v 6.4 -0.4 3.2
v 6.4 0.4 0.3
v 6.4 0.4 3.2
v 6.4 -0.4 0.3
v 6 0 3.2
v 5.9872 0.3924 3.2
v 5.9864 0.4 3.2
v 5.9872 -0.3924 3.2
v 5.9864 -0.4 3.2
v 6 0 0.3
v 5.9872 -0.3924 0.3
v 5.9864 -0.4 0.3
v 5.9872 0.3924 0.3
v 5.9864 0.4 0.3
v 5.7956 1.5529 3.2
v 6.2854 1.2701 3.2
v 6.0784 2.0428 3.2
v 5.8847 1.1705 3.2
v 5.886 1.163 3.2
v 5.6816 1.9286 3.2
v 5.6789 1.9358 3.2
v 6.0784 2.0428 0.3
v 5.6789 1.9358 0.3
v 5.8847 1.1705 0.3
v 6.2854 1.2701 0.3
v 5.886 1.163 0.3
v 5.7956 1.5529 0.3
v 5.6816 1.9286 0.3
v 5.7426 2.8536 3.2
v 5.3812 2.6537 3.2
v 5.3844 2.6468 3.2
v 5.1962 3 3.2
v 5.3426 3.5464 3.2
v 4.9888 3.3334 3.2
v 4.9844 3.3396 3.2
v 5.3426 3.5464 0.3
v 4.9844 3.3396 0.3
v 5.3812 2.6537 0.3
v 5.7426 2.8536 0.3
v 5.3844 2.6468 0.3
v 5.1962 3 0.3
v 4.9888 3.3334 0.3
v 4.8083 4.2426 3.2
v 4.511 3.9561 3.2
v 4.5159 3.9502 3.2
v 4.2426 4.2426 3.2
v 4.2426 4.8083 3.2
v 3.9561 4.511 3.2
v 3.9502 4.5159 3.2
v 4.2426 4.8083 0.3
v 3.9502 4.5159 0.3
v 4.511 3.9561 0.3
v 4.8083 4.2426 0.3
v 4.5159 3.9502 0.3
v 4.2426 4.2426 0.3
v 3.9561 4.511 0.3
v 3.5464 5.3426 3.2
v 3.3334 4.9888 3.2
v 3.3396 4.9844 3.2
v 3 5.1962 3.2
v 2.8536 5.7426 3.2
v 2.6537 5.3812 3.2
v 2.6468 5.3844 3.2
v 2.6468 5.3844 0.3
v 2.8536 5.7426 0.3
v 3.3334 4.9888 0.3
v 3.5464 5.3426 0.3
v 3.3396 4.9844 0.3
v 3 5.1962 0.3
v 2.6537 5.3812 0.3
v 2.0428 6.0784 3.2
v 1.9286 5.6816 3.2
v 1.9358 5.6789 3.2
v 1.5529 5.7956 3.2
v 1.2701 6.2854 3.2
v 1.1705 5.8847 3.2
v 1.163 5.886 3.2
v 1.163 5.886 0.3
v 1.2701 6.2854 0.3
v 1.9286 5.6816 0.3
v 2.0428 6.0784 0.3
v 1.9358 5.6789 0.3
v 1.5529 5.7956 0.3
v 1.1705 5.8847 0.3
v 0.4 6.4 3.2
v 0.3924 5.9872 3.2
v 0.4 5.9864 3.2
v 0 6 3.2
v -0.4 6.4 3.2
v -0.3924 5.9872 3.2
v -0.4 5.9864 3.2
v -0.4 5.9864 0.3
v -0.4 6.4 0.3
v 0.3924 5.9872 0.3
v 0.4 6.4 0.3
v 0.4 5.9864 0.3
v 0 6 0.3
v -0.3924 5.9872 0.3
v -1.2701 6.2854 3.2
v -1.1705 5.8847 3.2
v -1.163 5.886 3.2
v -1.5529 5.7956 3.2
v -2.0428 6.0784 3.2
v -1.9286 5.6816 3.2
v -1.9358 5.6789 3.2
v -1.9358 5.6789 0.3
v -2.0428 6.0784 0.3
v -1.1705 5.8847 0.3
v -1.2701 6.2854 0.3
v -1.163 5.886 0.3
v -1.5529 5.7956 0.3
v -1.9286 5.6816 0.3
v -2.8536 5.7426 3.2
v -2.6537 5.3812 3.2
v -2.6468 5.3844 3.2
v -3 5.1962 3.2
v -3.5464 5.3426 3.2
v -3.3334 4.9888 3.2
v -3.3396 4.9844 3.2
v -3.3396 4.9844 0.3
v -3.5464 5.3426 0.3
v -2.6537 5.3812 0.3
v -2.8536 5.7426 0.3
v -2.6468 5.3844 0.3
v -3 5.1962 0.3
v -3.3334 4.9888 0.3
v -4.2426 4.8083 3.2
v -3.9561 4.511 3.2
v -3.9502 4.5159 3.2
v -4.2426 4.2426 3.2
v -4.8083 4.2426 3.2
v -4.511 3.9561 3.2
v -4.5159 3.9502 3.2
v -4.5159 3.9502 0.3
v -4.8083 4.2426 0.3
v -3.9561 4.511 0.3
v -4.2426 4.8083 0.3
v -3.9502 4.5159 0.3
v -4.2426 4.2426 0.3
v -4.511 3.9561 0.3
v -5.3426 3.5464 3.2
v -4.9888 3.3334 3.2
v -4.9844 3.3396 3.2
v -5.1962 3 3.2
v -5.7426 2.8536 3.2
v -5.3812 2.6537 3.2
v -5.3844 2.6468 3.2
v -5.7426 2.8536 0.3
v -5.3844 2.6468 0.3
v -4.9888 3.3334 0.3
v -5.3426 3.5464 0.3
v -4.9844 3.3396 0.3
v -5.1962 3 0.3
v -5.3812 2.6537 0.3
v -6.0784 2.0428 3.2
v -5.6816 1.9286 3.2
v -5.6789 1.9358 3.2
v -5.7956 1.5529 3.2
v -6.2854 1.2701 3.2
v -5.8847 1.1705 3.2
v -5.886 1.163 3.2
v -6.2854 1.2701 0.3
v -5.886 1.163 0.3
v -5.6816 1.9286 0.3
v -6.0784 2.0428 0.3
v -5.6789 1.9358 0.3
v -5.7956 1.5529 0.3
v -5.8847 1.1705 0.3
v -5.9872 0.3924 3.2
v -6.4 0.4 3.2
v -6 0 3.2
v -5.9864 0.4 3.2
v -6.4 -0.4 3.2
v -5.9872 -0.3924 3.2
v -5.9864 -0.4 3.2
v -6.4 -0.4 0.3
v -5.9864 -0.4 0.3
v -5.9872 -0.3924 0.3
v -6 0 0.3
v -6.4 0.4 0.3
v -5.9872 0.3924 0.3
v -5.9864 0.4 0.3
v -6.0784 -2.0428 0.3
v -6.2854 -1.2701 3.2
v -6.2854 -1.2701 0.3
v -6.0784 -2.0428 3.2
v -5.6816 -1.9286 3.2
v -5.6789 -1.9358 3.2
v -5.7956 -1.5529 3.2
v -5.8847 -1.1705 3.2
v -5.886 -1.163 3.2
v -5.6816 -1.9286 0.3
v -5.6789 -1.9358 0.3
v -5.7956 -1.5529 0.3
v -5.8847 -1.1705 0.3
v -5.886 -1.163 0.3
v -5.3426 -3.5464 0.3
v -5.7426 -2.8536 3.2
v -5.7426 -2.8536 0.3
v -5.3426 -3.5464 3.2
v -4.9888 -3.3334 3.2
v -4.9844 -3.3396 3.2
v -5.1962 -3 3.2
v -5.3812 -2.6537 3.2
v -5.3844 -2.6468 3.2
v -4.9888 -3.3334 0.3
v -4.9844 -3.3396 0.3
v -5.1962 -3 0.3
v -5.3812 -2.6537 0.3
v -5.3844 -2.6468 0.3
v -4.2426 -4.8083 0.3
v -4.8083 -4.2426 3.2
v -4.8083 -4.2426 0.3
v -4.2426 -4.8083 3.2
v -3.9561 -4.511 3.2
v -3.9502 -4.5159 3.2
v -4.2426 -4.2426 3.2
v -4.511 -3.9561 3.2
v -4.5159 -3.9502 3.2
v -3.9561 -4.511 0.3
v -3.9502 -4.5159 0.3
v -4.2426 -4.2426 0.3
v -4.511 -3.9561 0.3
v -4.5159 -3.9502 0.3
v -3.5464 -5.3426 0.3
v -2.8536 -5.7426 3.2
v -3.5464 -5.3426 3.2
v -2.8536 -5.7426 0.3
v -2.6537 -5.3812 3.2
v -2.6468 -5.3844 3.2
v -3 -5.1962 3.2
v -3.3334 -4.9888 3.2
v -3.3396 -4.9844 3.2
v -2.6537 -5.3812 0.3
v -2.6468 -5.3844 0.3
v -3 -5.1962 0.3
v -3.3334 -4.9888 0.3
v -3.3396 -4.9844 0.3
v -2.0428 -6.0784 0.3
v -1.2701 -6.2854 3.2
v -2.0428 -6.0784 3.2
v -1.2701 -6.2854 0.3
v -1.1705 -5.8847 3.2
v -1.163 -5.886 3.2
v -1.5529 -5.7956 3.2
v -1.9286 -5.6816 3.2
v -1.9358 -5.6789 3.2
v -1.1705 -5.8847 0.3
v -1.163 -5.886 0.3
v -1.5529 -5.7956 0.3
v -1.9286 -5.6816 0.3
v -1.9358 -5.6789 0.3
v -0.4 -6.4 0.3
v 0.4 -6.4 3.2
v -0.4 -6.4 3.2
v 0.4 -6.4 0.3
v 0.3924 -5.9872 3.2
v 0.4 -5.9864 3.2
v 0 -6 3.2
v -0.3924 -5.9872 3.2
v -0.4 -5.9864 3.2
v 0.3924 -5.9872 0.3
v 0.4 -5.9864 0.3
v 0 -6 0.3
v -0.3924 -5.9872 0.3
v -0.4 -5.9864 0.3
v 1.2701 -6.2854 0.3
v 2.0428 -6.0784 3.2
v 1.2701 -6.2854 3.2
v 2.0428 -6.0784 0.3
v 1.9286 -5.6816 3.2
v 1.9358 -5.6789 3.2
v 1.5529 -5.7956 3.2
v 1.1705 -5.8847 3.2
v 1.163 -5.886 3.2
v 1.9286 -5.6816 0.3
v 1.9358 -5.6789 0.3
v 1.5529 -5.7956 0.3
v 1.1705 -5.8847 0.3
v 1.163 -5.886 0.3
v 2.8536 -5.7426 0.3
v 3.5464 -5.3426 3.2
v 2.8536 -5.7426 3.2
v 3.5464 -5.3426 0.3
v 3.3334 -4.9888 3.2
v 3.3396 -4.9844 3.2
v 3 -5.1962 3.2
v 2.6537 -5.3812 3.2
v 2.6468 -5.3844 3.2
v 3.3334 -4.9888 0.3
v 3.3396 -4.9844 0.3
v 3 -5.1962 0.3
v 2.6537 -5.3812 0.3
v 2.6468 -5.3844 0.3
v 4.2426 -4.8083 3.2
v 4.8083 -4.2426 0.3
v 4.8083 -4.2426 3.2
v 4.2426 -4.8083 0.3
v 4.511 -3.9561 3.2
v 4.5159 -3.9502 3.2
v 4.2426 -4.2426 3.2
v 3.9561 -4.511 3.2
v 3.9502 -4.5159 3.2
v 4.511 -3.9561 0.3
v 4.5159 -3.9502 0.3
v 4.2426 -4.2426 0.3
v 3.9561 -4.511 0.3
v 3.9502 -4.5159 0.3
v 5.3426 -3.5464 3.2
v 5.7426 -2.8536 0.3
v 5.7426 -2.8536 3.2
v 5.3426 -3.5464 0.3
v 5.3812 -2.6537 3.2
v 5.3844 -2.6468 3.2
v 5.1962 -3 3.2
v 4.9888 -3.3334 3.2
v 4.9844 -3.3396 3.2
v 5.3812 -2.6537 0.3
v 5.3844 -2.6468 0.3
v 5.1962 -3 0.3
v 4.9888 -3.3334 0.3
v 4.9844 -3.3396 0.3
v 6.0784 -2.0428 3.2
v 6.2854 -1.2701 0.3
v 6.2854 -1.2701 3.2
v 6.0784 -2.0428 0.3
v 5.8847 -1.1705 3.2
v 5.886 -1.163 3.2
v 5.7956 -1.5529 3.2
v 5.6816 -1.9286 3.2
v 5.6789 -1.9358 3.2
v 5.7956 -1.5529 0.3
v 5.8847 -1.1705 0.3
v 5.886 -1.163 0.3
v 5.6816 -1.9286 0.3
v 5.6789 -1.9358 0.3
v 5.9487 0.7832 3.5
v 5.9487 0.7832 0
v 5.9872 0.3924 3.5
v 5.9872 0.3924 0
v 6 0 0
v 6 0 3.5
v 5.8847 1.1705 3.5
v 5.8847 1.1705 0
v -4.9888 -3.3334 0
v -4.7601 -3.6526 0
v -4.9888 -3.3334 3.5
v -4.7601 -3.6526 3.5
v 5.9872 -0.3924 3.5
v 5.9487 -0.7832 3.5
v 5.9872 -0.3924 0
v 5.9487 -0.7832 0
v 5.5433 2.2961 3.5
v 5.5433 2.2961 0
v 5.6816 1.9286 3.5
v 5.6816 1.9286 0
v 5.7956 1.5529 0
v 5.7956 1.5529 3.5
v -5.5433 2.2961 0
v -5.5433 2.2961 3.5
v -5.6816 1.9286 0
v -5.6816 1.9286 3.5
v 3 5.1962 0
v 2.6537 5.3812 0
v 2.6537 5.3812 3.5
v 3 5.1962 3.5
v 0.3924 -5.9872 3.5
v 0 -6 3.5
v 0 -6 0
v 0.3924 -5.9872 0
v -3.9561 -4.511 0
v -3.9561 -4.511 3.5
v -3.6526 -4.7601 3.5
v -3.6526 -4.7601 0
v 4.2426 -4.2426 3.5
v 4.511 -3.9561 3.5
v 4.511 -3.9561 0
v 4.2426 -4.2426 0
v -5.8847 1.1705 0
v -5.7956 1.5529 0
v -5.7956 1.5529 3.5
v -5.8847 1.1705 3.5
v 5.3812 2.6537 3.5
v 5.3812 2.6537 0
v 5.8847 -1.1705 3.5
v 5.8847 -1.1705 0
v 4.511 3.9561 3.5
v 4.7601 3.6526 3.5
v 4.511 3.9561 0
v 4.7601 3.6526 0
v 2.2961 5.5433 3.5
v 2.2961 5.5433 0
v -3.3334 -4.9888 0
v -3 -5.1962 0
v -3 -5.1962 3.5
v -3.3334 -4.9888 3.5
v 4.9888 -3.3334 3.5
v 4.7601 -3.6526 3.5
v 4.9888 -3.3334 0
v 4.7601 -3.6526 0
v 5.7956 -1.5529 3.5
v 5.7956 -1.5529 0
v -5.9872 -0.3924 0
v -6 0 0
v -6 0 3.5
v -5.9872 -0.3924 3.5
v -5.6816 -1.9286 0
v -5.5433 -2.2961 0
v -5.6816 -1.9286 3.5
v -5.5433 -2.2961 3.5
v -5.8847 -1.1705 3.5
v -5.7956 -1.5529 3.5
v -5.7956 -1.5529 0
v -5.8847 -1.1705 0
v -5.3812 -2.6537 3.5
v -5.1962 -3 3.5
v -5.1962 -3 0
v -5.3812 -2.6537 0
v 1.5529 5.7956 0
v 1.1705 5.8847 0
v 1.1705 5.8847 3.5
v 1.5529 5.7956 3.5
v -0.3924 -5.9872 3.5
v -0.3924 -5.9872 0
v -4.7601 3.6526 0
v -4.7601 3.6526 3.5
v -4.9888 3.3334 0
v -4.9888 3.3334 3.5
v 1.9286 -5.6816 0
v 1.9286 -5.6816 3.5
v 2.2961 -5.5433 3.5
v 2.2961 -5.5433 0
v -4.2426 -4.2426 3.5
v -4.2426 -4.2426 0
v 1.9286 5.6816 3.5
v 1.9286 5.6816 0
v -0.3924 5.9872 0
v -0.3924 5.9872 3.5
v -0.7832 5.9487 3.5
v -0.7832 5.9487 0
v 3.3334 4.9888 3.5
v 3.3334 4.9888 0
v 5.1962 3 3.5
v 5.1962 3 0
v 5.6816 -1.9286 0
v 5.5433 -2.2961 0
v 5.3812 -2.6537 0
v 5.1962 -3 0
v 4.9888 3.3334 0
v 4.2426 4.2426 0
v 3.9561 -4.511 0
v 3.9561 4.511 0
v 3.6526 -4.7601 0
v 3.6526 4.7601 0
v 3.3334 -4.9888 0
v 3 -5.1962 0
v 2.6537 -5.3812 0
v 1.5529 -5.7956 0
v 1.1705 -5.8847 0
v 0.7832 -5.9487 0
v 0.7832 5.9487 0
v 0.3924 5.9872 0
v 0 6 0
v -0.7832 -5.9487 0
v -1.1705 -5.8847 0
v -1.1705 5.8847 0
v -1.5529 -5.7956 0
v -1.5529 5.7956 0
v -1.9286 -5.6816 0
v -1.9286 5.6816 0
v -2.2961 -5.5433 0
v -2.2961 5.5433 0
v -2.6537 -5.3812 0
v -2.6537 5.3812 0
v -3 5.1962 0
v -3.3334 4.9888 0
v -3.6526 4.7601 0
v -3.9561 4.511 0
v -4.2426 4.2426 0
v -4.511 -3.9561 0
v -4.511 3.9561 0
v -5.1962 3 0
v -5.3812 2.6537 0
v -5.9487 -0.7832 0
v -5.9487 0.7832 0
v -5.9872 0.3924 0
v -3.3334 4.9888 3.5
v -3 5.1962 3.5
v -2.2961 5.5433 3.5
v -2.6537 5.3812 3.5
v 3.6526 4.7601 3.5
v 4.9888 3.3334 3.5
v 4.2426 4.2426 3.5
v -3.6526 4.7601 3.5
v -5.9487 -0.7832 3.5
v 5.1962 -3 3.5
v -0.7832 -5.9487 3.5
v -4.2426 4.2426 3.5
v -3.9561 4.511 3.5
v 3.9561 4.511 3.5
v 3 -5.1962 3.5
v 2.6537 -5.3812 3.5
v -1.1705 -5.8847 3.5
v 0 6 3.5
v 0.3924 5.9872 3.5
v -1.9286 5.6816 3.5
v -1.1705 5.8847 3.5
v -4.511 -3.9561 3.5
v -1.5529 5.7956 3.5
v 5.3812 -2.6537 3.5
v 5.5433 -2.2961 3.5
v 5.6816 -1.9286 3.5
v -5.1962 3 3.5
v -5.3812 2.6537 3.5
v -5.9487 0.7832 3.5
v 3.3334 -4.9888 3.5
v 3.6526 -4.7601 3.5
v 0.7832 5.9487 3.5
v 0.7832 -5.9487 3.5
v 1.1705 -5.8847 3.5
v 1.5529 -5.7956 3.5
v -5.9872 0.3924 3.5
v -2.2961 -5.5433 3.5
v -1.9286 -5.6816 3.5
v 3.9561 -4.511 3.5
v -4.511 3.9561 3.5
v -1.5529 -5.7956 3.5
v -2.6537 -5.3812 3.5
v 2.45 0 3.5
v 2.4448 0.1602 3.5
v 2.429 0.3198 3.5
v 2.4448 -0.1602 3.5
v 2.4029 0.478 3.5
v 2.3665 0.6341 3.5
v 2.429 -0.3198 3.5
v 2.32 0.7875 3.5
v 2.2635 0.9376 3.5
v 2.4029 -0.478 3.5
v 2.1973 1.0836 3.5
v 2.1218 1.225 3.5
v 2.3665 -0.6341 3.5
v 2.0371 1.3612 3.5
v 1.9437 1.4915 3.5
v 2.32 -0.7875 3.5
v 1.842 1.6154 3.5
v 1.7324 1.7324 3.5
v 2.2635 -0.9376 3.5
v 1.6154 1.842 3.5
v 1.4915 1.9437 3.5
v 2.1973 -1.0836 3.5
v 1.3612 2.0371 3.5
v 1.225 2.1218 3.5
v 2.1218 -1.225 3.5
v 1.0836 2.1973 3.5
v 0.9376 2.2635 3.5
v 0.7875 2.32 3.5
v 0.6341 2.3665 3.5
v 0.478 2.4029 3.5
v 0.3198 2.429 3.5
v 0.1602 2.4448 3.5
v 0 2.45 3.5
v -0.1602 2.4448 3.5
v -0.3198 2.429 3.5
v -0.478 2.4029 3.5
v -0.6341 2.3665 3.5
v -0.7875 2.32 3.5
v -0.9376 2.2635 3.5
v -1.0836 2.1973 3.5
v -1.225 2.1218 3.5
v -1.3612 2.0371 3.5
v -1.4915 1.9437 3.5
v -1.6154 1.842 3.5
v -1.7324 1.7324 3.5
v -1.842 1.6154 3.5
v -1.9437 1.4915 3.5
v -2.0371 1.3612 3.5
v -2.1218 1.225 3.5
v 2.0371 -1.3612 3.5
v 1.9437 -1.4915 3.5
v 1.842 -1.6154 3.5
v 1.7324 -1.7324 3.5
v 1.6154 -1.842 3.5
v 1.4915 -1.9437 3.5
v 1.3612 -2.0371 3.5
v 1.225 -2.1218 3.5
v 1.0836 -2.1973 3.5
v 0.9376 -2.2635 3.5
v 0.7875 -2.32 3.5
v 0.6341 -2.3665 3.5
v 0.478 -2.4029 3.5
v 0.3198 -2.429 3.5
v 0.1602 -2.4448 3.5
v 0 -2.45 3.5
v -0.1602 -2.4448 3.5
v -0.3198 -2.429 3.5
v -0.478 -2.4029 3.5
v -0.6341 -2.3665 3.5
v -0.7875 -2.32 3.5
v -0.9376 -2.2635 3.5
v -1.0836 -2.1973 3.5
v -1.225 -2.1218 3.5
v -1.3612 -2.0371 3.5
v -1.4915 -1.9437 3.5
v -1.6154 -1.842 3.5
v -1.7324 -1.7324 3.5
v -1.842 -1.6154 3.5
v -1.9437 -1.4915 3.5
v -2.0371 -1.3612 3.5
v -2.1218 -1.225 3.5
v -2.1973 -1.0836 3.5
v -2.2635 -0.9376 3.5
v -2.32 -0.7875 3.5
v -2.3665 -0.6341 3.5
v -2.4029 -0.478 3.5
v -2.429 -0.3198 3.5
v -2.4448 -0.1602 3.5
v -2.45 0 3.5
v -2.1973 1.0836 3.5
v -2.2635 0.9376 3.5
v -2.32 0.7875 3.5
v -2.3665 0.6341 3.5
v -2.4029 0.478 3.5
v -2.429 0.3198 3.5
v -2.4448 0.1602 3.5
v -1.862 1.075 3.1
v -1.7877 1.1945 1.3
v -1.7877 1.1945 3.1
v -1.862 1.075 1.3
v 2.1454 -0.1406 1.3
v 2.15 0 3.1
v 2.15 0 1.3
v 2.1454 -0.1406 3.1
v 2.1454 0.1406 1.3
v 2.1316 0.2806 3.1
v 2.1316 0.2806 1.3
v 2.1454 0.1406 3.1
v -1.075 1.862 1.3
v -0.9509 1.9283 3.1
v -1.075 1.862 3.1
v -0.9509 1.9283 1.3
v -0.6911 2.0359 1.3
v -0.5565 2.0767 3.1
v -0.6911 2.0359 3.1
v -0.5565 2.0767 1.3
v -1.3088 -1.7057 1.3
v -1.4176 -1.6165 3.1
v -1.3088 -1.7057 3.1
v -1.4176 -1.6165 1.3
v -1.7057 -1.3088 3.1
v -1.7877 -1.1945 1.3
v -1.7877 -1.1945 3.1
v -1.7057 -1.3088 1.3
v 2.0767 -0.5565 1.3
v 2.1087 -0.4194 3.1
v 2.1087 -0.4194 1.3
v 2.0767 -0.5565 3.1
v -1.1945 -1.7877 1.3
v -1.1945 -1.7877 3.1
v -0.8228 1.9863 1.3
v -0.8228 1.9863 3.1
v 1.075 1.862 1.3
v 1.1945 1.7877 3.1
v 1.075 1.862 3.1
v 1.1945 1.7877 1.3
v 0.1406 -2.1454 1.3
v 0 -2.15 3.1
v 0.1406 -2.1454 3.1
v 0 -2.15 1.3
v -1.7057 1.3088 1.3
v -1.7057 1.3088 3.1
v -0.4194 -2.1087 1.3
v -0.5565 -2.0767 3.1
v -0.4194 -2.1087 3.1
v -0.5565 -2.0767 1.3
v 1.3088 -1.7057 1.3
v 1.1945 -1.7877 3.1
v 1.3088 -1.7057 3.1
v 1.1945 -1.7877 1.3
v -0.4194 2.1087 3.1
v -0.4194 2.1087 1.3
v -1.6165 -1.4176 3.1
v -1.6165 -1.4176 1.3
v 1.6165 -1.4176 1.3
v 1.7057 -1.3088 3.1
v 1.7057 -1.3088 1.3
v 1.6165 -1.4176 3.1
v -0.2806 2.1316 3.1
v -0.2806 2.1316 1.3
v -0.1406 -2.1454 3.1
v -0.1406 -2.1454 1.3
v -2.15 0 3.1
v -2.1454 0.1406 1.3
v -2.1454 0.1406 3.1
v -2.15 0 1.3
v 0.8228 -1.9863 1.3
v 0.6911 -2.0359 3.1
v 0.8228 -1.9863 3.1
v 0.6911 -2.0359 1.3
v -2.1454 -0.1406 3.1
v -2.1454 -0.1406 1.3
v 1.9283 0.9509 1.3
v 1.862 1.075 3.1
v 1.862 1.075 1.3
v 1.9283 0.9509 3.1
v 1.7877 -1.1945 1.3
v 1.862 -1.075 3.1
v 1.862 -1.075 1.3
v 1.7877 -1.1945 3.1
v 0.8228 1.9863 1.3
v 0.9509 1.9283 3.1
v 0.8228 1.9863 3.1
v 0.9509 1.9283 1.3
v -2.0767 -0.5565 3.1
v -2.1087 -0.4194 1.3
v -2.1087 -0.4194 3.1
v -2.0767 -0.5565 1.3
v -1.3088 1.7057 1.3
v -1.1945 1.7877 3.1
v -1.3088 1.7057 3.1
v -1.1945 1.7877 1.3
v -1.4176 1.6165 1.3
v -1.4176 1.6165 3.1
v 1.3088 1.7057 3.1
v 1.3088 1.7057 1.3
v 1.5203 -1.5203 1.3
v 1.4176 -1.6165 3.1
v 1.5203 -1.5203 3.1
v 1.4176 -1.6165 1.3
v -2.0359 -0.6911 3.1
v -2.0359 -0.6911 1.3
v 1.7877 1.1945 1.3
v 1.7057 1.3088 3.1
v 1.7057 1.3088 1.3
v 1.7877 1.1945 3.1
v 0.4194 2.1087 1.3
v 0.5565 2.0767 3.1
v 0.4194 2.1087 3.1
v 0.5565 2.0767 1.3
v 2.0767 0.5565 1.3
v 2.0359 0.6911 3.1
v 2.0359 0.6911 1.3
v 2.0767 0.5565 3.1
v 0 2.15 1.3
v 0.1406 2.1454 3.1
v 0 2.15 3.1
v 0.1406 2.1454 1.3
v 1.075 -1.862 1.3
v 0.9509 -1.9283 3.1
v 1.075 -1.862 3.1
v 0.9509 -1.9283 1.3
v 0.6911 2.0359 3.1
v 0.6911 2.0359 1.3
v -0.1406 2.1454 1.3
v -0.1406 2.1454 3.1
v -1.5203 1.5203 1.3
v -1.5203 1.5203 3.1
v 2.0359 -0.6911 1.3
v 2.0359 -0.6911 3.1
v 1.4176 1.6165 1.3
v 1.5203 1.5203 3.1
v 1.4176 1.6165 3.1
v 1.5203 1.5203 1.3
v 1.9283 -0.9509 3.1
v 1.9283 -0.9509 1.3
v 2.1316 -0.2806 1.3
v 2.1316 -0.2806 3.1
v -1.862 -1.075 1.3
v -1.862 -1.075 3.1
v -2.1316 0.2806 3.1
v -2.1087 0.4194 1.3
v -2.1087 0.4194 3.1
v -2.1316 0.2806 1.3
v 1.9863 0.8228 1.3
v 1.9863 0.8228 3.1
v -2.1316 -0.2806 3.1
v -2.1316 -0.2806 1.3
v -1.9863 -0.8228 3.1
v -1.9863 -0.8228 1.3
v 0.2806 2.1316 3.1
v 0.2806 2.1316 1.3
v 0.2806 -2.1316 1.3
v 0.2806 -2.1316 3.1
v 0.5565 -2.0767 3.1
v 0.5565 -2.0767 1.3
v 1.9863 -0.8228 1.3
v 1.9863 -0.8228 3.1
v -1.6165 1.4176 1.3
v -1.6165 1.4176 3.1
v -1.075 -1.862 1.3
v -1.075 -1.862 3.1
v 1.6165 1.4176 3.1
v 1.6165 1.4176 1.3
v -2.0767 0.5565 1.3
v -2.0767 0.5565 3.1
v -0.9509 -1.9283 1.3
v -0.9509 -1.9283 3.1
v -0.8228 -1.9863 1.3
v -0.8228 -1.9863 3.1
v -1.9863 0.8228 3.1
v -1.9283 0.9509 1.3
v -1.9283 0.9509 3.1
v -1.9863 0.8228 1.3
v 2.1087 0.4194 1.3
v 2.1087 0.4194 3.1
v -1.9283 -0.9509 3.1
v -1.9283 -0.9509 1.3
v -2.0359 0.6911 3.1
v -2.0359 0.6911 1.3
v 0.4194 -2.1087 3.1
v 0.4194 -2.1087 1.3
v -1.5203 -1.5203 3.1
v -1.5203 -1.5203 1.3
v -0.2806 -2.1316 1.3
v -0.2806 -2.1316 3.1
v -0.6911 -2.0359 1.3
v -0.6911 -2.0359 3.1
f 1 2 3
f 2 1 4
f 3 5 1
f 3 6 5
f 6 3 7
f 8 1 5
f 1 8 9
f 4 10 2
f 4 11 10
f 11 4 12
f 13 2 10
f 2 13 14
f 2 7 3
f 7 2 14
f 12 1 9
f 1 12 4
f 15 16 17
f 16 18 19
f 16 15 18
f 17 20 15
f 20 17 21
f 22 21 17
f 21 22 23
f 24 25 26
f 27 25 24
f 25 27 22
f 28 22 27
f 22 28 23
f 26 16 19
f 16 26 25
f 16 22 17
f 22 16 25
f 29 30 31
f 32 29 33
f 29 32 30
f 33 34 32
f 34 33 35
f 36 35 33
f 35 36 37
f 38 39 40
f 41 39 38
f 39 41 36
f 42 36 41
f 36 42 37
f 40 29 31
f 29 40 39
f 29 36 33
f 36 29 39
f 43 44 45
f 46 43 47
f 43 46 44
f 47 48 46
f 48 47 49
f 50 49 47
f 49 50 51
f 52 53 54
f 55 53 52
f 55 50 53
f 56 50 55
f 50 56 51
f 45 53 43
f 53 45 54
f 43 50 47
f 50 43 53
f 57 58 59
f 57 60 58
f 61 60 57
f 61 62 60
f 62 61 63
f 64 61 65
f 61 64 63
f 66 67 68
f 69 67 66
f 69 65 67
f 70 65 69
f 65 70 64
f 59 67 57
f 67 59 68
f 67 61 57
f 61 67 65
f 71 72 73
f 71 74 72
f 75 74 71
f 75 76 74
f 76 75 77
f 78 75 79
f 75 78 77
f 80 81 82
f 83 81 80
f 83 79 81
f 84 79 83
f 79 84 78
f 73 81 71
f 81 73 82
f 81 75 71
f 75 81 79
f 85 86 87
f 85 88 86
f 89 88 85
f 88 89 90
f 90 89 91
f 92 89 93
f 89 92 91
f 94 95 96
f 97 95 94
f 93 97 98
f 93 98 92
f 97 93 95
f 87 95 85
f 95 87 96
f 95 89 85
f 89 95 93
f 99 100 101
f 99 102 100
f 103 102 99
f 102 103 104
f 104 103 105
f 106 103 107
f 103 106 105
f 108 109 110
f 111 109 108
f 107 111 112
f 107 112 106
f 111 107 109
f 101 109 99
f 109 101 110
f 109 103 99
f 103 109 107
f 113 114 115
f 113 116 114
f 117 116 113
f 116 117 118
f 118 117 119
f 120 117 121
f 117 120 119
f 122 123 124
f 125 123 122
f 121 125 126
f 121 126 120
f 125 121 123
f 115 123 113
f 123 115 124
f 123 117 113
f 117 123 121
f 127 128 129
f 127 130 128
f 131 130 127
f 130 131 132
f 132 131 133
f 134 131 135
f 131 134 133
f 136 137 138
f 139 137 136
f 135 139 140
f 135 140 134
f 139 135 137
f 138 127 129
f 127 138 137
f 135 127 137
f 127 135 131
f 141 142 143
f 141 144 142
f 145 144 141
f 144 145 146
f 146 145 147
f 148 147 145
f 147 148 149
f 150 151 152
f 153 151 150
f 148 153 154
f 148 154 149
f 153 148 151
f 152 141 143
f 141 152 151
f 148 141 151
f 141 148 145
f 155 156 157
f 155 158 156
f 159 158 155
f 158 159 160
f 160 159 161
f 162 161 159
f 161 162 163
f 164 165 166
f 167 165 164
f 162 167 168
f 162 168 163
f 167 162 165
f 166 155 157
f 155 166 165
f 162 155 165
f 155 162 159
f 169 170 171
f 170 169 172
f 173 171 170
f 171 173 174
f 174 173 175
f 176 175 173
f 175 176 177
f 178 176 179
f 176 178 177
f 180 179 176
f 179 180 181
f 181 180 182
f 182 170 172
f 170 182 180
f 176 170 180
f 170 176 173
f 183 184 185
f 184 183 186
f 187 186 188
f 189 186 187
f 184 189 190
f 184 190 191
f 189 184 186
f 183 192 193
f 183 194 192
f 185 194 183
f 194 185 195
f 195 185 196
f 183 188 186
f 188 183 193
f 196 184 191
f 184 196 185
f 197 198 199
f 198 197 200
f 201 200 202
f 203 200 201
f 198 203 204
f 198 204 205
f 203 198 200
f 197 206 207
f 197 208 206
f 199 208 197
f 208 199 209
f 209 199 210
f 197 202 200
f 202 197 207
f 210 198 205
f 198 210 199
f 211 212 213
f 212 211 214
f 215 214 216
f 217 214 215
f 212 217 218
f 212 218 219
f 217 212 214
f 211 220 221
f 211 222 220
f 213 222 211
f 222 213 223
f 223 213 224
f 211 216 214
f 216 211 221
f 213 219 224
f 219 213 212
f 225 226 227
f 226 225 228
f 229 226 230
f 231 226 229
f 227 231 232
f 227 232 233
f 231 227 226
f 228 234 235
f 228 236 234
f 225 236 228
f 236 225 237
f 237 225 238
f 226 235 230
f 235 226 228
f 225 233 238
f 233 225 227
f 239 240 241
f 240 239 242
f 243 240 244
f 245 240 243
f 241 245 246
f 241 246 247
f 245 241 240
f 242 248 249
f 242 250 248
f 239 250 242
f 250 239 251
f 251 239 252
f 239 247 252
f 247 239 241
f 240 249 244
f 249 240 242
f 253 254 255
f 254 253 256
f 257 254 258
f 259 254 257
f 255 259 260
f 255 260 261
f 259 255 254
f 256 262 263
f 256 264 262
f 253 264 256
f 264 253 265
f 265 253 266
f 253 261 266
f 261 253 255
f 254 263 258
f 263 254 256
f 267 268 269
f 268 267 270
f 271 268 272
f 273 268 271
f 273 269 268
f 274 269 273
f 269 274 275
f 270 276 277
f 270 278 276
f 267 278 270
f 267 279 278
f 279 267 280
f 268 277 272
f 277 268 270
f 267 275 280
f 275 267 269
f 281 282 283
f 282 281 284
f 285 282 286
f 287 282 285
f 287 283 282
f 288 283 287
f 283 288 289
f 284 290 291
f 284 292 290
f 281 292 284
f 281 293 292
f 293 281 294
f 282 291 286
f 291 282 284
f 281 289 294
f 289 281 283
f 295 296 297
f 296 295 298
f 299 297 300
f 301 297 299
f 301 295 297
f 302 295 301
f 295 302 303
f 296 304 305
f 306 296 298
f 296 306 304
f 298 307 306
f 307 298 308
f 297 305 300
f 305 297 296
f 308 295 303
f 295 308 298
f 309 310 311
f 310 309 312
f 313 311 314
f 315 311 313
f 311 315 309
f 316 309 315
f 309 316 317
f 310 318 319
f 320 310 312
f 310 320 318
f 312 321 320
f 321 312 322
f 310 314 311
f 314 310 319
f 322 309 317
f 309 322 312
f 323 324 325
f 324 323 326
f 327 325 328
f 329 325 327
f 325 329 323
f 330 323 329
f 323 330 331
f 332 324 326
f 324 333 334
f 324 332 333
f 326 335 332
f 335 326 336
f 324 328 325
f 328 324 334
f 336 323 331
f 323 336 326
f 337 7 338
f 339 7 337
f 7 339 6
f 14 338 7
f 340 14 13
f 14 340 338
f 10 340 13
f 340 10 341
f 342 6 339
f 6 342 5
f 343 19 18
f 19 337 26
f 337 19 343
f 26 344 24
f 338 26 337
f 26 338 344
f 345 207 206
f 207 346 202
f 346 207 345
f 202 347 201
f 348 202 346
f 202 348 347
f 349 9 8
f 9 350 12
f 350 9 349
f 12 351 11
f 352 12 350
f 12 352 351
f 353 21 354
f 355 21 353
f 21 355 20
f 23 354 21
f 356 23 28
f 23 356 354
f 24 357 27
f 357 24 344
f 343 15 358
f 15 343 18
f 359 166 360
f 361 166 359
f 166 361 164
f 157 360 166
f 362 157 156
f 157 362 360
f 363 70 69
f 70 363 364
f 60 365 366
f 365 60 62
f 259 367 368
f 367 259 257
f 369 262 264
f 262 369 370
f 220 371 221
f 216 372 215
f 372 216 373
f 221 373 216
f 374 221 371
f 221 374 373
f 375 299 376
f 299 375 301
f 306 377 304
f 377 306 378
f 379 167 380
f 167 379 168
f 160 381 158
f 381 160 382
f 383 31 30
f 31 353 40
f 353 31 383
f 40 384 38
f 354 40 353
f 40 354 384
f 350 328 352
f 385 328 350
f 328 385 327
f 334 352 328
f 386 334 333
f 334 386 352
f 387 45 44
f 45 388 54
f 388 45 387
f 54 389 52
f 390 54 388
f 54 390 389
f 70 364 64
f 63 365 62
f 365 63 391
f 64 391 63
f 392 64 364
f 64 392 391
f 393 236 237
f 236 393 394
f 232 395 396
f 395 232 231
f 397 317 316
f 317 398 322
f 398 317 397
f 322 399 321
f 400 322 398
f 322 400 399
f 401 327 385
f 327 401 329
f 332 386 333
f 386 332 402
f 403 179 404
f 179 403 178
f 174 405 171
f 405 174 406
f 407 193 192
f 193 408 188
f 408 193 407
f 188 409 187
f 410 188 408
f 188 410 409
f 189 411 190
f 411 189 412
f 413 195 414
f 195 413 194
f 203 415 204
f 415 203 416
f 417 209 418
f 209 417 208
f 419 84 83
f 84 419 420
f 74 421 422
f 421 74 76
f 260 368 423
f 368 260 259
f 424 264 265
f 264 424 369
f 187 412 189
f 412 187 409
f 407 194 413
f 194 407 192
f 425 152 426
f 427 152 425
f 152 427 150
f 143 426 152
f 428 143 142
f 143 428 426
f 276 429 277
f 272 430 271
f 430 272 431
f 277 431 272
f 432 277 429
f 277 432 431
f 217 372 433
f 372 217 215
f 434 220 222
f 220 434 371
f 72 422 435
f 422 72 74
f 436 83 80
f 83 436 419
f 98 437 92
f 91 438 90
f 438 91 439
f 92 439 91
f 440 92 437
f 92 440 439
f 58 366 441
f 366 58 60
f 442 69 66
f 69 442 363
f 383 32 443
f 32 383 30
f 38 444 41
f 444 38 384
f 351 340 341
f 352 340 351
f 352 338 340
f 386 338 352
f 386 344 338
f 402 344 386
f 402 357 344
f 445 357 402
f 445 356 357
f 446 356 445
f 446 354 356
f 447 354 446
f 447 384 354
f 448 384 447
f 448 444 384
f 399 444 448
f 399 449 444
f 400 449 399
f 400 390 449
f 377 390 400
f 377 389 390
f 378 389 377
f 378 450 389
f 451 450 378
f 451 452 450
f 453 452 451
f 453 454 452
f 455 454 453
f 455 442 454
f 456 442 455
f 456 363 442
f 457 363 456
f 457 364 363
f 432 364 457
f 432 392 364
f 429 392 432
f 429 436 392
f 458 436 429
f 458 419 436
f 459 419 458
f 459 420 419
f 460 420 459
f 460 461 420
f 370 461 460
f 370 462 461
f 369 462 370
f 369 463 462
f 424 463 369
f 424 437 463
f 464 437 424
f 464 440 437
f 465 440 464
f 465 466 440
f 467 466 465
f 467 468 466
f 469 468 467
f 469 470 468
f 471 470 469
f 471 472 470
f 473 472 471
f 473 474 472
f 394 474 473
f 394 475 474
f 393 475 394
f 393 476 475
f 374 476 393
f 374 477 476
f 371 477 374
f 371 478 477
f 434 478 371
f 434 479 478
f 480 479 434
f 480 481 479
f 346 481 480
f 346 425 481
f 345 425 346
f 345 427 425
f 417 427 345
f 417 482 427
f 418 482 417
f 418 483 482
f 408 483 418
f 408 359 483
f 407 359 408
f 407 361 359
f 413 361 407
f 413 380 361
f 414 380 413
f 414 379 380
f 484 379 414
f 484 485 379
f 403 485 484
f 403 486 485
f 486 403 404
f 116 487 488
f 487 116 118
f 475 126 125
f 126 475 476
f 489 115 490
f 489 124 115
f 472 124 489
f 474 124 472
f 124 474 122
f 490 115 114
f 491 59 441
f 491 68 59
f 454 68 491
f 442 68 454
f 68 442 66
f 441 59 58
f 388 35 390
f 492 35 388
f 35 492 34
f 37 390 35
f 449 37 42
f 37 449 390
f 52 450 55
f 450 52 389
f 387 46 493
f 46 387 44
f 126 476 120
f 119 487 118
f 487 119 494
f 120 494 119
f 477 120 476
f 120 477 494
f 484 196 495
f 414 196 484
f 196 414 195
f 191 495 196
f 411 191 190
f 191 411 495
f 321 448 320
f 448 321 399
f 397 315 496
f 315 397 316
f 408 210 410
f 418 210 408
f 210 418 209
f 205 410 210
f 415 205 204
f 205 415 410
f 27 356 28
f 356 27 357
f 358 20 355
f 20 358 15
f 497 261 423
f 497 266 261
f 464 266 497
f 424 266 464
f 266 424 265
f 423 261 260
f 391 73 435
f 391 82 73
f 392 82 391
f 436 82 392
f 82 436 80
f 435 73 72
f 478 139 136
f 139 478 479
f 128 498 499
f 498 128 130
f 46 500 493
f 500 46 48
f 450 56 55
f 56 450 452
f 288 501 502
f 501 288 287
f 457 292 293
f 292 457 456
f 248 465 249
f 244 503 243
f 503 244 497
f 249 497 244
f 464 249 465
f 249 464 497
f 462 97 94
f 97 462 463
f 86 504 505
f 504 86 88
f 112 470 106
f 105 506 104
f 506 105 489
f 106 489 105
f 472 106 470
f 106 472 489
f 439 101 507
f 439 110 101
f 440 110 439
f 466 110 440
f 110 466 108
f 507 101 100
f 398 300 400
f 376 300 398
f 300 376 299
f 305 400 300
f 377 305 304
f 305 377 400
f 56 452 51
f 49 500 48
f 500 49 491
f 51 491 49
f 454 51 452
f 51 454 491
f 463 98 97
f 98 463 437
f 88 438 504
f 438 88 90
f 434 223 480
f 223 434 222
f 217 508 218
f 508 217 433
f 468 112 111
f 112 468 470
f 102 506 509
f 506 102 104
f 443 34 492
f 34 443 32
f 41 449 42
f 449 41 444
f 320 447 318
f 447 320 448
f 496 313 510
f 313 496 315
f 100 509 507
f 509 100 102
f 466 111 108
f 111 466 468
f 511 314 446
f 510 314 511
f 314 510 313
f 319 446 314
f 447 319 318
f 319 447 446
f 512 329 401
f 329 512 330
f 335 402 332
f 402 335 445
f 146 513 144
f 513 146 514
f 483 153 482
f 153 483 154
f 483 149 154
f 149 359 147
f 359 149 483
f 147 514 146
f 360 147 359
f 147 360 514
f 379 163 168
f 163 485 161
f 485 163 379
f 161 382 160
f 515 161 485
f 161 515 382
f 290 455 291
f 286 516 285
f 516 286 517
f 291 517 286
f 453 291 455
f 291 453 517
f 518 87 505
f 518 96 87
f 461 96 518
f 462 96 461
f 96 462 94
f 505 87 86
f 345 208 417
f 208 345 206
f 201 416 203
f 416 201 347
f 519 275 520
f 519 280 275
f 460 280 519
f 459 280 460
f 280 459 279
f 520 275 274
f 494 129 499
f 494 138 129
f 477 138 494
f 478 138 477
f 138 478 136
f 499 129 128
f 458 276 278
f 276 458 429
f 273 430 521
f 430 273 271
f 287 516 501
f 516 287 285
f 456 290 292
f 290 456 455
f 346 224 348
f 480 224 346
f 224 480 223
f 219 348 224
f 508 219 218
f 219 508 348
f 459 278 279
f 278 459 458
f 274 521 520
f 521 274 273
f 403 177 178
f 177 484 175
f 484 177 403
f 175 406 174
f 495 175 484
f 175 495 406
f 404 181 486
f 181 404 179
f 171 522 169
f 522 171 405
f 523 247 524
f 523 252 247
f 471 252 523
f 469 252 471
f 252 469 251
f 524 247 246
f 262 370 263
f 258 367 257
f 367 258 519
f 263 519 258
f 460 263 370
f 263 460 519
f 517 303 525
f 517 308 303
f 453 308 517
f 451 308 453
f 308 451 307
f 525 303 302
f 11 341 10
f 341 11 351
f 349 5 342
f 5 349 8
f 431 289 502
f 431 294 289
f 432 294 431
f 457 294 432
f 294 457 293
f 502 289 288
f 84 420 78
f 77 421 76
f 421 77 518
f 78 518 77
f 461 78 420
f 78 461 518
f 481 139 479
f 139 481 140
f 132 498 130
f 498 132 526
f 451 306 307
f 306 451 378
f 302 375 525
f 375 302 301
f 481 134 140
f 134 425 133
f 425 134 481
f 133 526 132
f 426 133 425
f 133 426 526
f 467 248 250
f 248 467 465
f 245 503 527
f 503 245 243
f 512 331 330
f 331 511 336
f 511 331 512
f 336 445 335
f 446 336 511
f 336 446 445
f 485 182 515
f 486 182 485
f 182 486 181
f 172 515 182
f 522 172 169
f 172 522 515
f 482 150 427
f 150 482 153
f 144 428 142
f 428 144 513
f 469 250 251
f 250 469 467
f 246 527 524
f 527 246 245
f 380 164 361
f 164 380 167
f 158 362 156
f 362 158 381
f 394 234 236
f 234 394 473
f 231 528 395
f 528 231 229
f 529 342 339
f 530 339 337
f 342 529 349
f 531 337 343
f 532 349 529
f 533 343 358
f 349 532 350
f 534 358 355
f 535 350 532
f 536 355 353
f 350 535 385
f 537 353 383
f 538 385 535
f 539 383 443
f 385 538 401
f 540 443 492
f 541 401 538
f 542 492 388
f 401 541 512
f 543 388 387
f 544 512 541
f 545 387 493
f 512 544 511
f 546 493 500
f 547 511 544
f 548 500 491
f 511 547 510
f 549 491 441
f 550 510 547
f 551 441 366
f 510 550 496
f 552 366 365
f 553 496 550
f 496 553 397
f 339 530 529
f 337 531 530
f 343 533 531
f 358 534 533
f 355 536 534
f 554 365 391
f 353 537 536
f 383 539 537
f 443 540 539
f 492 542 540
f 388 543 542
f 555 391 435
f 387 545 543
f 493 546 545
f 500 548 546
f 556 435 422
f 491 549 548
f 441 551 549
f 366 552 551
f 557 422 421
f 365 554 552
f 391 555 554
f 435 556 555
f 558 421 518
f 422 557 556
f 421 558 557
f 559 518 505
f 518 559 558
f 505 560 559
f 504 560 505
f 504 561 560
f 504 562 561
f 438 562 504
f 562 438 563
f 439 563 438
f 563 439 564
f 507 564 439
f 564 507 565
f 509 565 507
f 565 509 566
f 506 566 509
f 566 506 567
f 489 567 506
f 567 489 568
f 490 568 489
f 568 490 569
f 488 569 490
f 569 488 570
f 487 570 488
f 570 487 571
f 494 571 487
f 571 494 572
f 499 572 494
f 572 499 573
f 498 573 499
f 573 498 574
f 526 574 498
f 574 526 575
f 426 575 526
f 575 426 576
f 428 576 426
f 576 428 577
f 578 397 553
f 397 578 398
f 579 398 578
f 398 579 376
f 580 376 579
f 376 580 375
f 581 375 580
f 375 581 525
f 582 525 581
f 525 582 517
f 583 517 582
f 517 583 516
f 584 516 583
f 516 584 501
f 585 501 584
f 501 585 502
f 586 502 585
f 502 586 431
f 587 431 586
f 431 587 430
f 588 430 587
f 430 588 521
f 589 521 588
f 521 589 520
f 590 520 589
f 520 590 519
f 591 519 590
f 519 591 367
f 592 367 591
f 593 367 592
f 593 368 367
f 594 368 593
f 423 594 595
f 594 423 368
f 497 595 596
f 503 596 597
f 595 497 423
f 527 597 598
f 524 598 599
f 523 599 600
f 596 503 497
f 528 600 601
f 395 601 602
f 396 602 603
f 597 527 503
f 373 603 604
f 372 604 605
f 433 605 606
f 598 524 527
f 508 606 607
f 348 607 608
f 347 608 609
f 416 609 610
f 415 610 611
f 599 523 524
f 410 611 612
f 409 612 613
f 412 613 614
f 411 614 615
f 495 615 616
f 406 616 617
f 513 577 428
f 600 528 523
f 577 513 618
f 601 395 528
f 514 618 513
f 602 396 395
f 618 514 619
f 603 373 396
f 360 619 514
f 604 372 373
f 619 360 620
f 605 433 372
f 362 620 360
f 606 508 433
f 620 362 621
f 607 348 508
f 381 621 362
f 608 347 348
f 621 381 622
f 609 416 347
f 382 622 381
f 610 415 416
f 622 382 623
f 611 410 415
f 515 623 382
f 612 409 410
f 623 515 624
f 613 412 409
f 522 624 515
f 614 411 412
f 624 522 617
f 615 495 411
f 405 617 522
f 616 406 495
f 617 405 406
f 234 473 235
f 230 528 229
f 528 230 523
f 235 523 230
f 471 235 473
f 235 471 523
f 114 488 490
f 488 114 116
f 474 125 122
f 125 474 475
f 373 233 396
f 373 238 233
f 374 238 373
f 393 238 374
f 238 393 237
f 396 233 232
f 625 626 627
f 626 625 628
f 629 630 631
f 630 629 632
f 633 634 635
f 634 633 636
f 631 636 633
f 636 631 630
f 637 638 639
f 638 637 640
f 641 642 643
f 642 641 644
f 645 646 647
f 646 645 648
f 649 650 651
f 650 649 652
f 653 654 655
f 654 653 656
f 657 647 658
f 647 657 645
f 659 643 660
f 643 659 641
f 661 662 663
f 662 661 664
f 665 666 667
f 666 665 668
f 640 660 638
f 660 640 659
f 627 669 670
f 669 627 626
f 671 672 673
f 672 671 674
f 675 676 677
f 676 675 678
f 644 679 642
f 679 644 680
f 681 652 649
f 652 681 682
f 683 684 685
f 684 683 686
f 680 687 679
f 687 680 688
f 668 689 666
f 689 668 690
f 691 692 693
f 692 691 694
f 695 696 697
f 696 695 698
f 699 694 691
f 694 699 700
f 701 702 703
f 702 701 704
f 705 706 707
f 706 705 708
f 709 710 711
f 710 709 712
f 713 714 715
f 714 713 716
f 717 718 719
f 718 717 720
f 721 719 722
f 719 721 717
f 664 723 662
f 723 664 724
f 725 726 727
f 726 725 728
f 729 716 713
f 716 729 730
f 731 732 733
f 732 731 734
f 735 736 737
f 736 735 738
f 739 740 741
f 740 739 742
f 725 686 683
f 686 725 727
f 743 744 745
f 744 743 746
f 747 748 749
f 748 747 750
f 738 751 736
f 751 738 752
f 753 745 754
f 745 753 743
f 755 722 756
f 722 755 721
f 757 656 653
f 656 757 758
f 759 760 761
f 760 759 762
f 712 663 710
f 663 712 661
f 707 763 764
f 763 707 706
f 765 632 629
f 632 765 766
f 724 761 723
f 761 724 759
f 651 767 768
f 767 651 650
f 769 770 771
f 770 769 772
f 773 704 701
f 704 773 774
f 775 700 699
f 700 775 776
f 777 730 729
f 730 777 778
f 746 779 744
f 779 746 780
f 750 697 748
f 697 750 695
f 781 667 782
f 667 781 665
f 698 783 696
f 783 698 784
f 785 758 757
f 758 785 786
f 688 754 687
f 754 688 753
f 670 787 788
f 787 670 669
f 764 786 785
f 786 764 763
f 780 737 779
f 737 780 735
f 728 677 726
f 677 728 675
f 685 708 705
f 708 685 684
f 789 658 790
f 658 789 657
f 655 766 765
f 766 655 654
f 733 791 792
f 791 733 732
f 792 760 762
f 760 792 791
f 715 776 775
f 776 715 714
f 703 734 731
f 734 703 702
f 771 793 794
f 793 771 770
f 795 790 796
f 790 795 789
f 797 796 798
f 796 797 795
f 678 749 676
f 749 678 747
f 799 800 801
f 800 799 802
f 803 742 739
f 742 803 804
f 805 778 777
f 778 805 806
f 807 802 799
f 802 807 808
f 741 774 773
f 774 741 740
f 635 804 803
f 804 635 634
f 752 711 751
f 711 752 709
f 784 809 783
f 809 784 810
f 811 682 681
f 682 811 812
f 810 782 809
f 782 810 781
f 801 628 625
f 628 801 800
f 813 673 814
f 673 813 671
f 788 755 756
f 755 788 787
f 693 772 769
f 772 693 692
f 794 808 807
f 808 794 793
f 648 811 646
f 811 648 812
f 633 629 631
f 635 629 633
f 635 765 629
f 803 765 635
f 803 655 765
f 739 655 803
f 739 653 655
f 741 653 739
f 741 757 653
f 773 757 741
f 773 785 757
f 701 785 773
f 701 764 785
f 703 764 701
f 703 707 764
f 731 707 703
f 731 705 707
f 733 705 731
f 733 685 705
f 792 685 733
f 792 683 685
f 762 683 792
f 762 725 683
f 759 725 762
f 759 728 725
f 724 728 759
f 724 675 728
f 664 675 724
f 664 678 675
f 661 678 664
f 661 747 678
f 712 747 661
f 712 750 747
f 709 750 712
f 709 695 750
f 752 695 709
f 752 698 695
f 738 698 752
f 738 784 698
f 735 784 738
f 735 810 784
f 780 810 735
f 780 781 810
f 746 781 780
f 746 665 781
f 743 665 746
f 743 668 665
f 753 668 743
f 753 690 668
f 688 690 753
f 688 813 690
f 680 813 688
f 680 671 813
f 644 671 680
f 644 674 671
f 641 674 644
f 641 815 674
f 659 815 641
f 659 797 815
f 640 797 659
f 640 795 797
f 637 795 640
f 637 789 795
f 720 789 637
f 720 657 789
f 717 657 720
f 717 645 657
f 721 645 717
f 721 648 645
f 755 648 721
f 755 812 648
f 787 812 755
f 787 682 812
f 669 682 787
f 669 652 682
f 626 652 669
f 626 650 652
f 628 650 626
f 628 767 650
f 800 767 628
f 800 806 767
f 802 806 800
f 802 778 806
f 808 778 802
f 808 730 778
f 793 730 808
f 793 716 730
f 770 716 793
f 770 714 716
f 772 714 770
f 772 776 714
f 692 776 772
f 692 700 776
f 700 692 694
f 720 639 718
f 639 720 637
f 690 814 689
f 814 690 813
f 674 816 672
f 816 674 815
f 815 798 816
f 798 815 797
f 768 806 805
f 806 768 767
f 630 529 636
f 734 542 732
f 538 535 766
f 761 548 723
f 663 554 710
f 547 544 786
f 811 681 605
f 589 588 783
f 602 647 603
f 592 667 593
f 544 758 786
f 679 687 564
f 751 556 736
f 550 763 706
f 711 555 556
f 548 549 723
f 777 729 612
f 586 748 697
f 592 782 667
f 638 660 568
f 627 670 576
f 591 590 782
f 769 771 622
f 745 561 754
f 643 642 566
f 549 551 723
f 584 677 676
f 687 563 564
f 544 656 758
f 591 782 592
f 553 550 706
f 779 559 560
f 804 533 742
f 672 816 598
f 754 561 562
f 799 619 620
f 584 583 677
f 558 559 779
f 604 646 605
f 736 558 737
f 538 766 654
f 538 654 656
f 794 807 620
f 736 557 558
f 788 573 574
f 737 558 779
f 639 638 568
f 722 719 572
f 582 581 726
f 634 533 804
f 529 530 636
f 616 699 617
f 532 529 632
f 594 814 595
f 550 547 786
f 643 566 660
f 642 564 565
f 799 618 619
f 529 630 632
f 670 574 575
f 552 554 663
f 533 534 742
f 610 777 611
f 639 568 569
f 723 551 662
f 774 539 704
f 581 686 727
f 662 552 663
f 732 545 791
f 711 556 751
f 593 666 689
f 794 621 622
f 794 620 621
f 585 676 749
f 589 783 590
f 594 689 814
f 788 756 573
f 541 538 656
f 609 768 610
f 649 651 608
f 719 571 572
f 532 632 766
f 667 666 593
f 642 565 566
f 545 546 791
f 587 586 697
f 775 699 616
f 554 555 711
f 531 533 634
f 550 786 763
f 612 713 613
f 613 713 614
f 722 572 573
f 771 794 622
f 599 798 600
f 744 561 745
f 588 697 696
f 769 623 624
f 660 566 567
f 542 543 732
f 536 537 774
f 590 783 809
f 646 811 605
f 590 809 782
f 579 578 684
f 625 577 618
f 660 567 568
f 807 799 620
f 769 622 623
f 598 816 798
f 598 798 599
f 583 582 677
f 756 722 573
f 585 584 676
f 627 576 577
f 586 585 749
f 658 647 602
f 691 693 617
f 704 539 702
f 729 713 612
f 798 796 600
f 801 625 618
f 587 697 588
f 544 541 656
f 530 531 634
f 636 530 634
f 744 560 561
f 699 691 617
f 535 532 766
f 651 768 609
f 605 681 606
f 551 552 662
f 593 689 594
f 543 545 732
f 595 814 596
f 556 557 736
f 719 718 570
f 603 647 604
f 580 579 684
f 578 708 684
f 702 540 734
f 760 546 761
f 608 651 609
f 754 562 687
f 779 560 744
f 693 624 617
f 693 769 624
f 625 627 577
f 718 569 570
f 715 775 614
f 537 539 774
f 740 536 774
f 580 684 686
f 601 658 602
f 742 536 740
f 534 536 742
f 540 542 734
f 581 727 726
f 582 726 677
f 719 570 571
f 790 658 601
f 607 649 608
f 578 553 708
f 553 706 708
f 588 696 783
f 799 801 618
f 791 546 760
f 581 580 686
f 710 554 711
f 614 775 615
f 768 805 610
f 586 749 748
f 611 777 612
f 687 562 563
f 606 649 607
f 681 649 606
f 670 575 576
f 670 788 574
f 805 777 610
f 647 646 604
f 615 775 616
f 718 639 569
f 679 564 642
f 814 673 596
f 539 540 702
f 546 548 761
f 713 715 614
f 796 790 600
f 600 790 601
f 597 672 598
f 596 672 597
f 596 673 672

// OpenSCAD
// ============================================================================
//  Magnet Centering Adapter — Parametric (v1.0)
//  WRO Future Engineers 2026 • Team Faith
//
//  Problem: A magnet glued straight to a wheel face drifts off-center as the
//  glue creeps under vibration. If the magnet is off-center by >0.25mm, the
//  AS5600 reports non-linear angle (wobble in serial output during slow spin).
//
//  Solution: A small printed disc with a precision pocket for the magnet.
//  Glue the disc to the wheel center (or hex-hub end). Pocket walls keep
//  the magnet concentric forever.
//
//  PRINT SETTINGS:
//    Material: PETG or PLA (low load on this part)
//    Layer height: 0.12 mm (matters here — pocket must be precise)
//    Infill: 100% (small part, give it strength)
//    No supports.
//    Print 2 (one for each wheel).
// ============================================================================

/* [Diametric magnet — measure yours] */
MAGNET_D       = 4.0;   // our magnet: 4mm cylindrical diametric (datasheet nominal is 6mm)
MAGNET_T       = 2.0;   // magnet thickness
MAGNET_FIT     = 0.30;  // clearance added (0.10 = tight, 0.20 = loose-glue, 0.30 = drop-in for glue)

/* [Adapter disc] */
DISC_OD        = 12.0;  // overall outer diameter — fits over wheel center
DISC_T         = 3.5;   // total disc thickness
POCKET_DEPTH   = MAGNET_T + 0.2;  // pocket holds magnet flush + a touch deep

/* [Centering pilot (optional)] */
// If your HSP wheel has a 5mm hex hole or center pin, set this to 5.1 for a
// snug slip-fit that centers the adapter on the rotation axis automatically.
// Set to 0 to disable (flat-bottom adapter, glue-only).
PILOT_D        = 0;     // 5.1 for HSP 94182 hex-hub centering, 0 for glue-only
PILOT_DEPTH    = 2.0;

/* [Knurled grip ring (optional — improves glue bond surface area)] */
KNURL          = true;
KNURL_TEETH    = 24;
KNURL_DEPTH    = 0.4;

$fn = 96;

// ============================================================================
//  MAIN BODY
// ============================================================================
module adapter() {
    difference() {
        // Outer disc
        union() {
            cylinder(d=DISC_OD, h=DISC_T);
            if (KNURL) knurl_ring();
        }

        // Magnet pocket (top face)
        translate([0, 0, DISC_T - POCKET_DEPTH])
            cylinder(d=MAGNET_D + MAGNET_FIT, h=POCKET_DEPTH + 0.1);

        // Optional pilot hole (bottom face) for centering on hex hub
        if (PILOT_D > 0)
            translate([0, 0, -0.1])
                cylinder(d=PILOT_D, h=PILOT_DEPTH + 0.1);

        // Tiny chamfer on pocket entry — helps magnet drop in
        translate([0, 0, DISC_T - 0.4])
            cylinder(d1=MAGNET_D + MAGNET_FIT, d2=MAGNET_D + MAGNET_FIT + 0.6, h=0.4);
    }
}

module knurl_ring() {
    // Grip ridges must STRADDLE the disc OD: embedded ~0.6 mm into the body so
    // the union is a solid overlap (watertight), and protruding KNURL_DEPTH past
    // the OD as the actual grip texture. Teeth that merely touch the OD tangent
    // produce zero-width slivers → non-manifold edges that some slicers choke on.
    embed = 0.6;                                    // solid overlap into the disc
    width = embed + KNURL_DEPTH;                     // total radial extent of tooth
    cx    = DISC_OD/2 - embed/2 + KNURL_DEPTH/2;     // peak lands at OD/2 + KNURL_DEPTH
    for (i = [0:KNURL_TEETH-1]) {
        angle = i * 360 / KNURL_TEETH;
        rotate([0, 0, angle])
            translate([cx, 0, DISC_T/2])
            cube([width, 0.8, DISC_T - 0.6], center=true);
    }
}

// ============================================================================
//  PREVIEW with ghost magnet
// ============================================================================
SHOW_MAGNET = true;

module ghost_magnet() {
    color([0.6, 0.2, 0.2, 0.7])
        translate([0, 0, DISC_T - MAGNET_T])
        cylinder(d=MAGNET_D, h=MAGNET_T);
    // North/south marker (visual reminder — diametric, not axial)
    color([0.9, 0.9, 0.9])
        translate([0, 0, DISC_T - MAGNET_T/2])
        cube([MAGNET_D + 0.5, 0.3, 0.1], center=true);
}

// ============================================================================
adapter();
// $preview is true in F5/PNG preview, false during F6/STL render — so the ghost
// magnet is shown for visualization but NEVER baked into the exported STL.
if (SHOW_MAGNET && $preview) ghost_magnet();

// ============================================================================
//  USAGE
//  1. Print 2 adapters (one per rear wheel).
//  2. Drop magnet into pocket — should be snug. If too tight, reprint with
//     MAGNET_FIT = 0.20. If too loose, MAGNET_FIT = 0.10.
//  3. Verify magnet is DIAMETRICALLY magnetized: a steel paperclip should
//     attract to the SIDE of the magnet (not the face). If it attracts to
//     the face, you have an axial magnet — wrong type — replace it.
//  4. Glue adapter to wheel hub center with cyanoacrylate (super glue).
//     Press for 30 sec, cure 1 hour before driving.
//  5. With wheel mounted, spin by hand and watch AS5600 raw angle on serial:
//     should sweep 0..4095 smoothly. If it wobbles back-and-forth around
//     the true rotation, adapter is off-center — peel off and redo.
// ============================================================================
